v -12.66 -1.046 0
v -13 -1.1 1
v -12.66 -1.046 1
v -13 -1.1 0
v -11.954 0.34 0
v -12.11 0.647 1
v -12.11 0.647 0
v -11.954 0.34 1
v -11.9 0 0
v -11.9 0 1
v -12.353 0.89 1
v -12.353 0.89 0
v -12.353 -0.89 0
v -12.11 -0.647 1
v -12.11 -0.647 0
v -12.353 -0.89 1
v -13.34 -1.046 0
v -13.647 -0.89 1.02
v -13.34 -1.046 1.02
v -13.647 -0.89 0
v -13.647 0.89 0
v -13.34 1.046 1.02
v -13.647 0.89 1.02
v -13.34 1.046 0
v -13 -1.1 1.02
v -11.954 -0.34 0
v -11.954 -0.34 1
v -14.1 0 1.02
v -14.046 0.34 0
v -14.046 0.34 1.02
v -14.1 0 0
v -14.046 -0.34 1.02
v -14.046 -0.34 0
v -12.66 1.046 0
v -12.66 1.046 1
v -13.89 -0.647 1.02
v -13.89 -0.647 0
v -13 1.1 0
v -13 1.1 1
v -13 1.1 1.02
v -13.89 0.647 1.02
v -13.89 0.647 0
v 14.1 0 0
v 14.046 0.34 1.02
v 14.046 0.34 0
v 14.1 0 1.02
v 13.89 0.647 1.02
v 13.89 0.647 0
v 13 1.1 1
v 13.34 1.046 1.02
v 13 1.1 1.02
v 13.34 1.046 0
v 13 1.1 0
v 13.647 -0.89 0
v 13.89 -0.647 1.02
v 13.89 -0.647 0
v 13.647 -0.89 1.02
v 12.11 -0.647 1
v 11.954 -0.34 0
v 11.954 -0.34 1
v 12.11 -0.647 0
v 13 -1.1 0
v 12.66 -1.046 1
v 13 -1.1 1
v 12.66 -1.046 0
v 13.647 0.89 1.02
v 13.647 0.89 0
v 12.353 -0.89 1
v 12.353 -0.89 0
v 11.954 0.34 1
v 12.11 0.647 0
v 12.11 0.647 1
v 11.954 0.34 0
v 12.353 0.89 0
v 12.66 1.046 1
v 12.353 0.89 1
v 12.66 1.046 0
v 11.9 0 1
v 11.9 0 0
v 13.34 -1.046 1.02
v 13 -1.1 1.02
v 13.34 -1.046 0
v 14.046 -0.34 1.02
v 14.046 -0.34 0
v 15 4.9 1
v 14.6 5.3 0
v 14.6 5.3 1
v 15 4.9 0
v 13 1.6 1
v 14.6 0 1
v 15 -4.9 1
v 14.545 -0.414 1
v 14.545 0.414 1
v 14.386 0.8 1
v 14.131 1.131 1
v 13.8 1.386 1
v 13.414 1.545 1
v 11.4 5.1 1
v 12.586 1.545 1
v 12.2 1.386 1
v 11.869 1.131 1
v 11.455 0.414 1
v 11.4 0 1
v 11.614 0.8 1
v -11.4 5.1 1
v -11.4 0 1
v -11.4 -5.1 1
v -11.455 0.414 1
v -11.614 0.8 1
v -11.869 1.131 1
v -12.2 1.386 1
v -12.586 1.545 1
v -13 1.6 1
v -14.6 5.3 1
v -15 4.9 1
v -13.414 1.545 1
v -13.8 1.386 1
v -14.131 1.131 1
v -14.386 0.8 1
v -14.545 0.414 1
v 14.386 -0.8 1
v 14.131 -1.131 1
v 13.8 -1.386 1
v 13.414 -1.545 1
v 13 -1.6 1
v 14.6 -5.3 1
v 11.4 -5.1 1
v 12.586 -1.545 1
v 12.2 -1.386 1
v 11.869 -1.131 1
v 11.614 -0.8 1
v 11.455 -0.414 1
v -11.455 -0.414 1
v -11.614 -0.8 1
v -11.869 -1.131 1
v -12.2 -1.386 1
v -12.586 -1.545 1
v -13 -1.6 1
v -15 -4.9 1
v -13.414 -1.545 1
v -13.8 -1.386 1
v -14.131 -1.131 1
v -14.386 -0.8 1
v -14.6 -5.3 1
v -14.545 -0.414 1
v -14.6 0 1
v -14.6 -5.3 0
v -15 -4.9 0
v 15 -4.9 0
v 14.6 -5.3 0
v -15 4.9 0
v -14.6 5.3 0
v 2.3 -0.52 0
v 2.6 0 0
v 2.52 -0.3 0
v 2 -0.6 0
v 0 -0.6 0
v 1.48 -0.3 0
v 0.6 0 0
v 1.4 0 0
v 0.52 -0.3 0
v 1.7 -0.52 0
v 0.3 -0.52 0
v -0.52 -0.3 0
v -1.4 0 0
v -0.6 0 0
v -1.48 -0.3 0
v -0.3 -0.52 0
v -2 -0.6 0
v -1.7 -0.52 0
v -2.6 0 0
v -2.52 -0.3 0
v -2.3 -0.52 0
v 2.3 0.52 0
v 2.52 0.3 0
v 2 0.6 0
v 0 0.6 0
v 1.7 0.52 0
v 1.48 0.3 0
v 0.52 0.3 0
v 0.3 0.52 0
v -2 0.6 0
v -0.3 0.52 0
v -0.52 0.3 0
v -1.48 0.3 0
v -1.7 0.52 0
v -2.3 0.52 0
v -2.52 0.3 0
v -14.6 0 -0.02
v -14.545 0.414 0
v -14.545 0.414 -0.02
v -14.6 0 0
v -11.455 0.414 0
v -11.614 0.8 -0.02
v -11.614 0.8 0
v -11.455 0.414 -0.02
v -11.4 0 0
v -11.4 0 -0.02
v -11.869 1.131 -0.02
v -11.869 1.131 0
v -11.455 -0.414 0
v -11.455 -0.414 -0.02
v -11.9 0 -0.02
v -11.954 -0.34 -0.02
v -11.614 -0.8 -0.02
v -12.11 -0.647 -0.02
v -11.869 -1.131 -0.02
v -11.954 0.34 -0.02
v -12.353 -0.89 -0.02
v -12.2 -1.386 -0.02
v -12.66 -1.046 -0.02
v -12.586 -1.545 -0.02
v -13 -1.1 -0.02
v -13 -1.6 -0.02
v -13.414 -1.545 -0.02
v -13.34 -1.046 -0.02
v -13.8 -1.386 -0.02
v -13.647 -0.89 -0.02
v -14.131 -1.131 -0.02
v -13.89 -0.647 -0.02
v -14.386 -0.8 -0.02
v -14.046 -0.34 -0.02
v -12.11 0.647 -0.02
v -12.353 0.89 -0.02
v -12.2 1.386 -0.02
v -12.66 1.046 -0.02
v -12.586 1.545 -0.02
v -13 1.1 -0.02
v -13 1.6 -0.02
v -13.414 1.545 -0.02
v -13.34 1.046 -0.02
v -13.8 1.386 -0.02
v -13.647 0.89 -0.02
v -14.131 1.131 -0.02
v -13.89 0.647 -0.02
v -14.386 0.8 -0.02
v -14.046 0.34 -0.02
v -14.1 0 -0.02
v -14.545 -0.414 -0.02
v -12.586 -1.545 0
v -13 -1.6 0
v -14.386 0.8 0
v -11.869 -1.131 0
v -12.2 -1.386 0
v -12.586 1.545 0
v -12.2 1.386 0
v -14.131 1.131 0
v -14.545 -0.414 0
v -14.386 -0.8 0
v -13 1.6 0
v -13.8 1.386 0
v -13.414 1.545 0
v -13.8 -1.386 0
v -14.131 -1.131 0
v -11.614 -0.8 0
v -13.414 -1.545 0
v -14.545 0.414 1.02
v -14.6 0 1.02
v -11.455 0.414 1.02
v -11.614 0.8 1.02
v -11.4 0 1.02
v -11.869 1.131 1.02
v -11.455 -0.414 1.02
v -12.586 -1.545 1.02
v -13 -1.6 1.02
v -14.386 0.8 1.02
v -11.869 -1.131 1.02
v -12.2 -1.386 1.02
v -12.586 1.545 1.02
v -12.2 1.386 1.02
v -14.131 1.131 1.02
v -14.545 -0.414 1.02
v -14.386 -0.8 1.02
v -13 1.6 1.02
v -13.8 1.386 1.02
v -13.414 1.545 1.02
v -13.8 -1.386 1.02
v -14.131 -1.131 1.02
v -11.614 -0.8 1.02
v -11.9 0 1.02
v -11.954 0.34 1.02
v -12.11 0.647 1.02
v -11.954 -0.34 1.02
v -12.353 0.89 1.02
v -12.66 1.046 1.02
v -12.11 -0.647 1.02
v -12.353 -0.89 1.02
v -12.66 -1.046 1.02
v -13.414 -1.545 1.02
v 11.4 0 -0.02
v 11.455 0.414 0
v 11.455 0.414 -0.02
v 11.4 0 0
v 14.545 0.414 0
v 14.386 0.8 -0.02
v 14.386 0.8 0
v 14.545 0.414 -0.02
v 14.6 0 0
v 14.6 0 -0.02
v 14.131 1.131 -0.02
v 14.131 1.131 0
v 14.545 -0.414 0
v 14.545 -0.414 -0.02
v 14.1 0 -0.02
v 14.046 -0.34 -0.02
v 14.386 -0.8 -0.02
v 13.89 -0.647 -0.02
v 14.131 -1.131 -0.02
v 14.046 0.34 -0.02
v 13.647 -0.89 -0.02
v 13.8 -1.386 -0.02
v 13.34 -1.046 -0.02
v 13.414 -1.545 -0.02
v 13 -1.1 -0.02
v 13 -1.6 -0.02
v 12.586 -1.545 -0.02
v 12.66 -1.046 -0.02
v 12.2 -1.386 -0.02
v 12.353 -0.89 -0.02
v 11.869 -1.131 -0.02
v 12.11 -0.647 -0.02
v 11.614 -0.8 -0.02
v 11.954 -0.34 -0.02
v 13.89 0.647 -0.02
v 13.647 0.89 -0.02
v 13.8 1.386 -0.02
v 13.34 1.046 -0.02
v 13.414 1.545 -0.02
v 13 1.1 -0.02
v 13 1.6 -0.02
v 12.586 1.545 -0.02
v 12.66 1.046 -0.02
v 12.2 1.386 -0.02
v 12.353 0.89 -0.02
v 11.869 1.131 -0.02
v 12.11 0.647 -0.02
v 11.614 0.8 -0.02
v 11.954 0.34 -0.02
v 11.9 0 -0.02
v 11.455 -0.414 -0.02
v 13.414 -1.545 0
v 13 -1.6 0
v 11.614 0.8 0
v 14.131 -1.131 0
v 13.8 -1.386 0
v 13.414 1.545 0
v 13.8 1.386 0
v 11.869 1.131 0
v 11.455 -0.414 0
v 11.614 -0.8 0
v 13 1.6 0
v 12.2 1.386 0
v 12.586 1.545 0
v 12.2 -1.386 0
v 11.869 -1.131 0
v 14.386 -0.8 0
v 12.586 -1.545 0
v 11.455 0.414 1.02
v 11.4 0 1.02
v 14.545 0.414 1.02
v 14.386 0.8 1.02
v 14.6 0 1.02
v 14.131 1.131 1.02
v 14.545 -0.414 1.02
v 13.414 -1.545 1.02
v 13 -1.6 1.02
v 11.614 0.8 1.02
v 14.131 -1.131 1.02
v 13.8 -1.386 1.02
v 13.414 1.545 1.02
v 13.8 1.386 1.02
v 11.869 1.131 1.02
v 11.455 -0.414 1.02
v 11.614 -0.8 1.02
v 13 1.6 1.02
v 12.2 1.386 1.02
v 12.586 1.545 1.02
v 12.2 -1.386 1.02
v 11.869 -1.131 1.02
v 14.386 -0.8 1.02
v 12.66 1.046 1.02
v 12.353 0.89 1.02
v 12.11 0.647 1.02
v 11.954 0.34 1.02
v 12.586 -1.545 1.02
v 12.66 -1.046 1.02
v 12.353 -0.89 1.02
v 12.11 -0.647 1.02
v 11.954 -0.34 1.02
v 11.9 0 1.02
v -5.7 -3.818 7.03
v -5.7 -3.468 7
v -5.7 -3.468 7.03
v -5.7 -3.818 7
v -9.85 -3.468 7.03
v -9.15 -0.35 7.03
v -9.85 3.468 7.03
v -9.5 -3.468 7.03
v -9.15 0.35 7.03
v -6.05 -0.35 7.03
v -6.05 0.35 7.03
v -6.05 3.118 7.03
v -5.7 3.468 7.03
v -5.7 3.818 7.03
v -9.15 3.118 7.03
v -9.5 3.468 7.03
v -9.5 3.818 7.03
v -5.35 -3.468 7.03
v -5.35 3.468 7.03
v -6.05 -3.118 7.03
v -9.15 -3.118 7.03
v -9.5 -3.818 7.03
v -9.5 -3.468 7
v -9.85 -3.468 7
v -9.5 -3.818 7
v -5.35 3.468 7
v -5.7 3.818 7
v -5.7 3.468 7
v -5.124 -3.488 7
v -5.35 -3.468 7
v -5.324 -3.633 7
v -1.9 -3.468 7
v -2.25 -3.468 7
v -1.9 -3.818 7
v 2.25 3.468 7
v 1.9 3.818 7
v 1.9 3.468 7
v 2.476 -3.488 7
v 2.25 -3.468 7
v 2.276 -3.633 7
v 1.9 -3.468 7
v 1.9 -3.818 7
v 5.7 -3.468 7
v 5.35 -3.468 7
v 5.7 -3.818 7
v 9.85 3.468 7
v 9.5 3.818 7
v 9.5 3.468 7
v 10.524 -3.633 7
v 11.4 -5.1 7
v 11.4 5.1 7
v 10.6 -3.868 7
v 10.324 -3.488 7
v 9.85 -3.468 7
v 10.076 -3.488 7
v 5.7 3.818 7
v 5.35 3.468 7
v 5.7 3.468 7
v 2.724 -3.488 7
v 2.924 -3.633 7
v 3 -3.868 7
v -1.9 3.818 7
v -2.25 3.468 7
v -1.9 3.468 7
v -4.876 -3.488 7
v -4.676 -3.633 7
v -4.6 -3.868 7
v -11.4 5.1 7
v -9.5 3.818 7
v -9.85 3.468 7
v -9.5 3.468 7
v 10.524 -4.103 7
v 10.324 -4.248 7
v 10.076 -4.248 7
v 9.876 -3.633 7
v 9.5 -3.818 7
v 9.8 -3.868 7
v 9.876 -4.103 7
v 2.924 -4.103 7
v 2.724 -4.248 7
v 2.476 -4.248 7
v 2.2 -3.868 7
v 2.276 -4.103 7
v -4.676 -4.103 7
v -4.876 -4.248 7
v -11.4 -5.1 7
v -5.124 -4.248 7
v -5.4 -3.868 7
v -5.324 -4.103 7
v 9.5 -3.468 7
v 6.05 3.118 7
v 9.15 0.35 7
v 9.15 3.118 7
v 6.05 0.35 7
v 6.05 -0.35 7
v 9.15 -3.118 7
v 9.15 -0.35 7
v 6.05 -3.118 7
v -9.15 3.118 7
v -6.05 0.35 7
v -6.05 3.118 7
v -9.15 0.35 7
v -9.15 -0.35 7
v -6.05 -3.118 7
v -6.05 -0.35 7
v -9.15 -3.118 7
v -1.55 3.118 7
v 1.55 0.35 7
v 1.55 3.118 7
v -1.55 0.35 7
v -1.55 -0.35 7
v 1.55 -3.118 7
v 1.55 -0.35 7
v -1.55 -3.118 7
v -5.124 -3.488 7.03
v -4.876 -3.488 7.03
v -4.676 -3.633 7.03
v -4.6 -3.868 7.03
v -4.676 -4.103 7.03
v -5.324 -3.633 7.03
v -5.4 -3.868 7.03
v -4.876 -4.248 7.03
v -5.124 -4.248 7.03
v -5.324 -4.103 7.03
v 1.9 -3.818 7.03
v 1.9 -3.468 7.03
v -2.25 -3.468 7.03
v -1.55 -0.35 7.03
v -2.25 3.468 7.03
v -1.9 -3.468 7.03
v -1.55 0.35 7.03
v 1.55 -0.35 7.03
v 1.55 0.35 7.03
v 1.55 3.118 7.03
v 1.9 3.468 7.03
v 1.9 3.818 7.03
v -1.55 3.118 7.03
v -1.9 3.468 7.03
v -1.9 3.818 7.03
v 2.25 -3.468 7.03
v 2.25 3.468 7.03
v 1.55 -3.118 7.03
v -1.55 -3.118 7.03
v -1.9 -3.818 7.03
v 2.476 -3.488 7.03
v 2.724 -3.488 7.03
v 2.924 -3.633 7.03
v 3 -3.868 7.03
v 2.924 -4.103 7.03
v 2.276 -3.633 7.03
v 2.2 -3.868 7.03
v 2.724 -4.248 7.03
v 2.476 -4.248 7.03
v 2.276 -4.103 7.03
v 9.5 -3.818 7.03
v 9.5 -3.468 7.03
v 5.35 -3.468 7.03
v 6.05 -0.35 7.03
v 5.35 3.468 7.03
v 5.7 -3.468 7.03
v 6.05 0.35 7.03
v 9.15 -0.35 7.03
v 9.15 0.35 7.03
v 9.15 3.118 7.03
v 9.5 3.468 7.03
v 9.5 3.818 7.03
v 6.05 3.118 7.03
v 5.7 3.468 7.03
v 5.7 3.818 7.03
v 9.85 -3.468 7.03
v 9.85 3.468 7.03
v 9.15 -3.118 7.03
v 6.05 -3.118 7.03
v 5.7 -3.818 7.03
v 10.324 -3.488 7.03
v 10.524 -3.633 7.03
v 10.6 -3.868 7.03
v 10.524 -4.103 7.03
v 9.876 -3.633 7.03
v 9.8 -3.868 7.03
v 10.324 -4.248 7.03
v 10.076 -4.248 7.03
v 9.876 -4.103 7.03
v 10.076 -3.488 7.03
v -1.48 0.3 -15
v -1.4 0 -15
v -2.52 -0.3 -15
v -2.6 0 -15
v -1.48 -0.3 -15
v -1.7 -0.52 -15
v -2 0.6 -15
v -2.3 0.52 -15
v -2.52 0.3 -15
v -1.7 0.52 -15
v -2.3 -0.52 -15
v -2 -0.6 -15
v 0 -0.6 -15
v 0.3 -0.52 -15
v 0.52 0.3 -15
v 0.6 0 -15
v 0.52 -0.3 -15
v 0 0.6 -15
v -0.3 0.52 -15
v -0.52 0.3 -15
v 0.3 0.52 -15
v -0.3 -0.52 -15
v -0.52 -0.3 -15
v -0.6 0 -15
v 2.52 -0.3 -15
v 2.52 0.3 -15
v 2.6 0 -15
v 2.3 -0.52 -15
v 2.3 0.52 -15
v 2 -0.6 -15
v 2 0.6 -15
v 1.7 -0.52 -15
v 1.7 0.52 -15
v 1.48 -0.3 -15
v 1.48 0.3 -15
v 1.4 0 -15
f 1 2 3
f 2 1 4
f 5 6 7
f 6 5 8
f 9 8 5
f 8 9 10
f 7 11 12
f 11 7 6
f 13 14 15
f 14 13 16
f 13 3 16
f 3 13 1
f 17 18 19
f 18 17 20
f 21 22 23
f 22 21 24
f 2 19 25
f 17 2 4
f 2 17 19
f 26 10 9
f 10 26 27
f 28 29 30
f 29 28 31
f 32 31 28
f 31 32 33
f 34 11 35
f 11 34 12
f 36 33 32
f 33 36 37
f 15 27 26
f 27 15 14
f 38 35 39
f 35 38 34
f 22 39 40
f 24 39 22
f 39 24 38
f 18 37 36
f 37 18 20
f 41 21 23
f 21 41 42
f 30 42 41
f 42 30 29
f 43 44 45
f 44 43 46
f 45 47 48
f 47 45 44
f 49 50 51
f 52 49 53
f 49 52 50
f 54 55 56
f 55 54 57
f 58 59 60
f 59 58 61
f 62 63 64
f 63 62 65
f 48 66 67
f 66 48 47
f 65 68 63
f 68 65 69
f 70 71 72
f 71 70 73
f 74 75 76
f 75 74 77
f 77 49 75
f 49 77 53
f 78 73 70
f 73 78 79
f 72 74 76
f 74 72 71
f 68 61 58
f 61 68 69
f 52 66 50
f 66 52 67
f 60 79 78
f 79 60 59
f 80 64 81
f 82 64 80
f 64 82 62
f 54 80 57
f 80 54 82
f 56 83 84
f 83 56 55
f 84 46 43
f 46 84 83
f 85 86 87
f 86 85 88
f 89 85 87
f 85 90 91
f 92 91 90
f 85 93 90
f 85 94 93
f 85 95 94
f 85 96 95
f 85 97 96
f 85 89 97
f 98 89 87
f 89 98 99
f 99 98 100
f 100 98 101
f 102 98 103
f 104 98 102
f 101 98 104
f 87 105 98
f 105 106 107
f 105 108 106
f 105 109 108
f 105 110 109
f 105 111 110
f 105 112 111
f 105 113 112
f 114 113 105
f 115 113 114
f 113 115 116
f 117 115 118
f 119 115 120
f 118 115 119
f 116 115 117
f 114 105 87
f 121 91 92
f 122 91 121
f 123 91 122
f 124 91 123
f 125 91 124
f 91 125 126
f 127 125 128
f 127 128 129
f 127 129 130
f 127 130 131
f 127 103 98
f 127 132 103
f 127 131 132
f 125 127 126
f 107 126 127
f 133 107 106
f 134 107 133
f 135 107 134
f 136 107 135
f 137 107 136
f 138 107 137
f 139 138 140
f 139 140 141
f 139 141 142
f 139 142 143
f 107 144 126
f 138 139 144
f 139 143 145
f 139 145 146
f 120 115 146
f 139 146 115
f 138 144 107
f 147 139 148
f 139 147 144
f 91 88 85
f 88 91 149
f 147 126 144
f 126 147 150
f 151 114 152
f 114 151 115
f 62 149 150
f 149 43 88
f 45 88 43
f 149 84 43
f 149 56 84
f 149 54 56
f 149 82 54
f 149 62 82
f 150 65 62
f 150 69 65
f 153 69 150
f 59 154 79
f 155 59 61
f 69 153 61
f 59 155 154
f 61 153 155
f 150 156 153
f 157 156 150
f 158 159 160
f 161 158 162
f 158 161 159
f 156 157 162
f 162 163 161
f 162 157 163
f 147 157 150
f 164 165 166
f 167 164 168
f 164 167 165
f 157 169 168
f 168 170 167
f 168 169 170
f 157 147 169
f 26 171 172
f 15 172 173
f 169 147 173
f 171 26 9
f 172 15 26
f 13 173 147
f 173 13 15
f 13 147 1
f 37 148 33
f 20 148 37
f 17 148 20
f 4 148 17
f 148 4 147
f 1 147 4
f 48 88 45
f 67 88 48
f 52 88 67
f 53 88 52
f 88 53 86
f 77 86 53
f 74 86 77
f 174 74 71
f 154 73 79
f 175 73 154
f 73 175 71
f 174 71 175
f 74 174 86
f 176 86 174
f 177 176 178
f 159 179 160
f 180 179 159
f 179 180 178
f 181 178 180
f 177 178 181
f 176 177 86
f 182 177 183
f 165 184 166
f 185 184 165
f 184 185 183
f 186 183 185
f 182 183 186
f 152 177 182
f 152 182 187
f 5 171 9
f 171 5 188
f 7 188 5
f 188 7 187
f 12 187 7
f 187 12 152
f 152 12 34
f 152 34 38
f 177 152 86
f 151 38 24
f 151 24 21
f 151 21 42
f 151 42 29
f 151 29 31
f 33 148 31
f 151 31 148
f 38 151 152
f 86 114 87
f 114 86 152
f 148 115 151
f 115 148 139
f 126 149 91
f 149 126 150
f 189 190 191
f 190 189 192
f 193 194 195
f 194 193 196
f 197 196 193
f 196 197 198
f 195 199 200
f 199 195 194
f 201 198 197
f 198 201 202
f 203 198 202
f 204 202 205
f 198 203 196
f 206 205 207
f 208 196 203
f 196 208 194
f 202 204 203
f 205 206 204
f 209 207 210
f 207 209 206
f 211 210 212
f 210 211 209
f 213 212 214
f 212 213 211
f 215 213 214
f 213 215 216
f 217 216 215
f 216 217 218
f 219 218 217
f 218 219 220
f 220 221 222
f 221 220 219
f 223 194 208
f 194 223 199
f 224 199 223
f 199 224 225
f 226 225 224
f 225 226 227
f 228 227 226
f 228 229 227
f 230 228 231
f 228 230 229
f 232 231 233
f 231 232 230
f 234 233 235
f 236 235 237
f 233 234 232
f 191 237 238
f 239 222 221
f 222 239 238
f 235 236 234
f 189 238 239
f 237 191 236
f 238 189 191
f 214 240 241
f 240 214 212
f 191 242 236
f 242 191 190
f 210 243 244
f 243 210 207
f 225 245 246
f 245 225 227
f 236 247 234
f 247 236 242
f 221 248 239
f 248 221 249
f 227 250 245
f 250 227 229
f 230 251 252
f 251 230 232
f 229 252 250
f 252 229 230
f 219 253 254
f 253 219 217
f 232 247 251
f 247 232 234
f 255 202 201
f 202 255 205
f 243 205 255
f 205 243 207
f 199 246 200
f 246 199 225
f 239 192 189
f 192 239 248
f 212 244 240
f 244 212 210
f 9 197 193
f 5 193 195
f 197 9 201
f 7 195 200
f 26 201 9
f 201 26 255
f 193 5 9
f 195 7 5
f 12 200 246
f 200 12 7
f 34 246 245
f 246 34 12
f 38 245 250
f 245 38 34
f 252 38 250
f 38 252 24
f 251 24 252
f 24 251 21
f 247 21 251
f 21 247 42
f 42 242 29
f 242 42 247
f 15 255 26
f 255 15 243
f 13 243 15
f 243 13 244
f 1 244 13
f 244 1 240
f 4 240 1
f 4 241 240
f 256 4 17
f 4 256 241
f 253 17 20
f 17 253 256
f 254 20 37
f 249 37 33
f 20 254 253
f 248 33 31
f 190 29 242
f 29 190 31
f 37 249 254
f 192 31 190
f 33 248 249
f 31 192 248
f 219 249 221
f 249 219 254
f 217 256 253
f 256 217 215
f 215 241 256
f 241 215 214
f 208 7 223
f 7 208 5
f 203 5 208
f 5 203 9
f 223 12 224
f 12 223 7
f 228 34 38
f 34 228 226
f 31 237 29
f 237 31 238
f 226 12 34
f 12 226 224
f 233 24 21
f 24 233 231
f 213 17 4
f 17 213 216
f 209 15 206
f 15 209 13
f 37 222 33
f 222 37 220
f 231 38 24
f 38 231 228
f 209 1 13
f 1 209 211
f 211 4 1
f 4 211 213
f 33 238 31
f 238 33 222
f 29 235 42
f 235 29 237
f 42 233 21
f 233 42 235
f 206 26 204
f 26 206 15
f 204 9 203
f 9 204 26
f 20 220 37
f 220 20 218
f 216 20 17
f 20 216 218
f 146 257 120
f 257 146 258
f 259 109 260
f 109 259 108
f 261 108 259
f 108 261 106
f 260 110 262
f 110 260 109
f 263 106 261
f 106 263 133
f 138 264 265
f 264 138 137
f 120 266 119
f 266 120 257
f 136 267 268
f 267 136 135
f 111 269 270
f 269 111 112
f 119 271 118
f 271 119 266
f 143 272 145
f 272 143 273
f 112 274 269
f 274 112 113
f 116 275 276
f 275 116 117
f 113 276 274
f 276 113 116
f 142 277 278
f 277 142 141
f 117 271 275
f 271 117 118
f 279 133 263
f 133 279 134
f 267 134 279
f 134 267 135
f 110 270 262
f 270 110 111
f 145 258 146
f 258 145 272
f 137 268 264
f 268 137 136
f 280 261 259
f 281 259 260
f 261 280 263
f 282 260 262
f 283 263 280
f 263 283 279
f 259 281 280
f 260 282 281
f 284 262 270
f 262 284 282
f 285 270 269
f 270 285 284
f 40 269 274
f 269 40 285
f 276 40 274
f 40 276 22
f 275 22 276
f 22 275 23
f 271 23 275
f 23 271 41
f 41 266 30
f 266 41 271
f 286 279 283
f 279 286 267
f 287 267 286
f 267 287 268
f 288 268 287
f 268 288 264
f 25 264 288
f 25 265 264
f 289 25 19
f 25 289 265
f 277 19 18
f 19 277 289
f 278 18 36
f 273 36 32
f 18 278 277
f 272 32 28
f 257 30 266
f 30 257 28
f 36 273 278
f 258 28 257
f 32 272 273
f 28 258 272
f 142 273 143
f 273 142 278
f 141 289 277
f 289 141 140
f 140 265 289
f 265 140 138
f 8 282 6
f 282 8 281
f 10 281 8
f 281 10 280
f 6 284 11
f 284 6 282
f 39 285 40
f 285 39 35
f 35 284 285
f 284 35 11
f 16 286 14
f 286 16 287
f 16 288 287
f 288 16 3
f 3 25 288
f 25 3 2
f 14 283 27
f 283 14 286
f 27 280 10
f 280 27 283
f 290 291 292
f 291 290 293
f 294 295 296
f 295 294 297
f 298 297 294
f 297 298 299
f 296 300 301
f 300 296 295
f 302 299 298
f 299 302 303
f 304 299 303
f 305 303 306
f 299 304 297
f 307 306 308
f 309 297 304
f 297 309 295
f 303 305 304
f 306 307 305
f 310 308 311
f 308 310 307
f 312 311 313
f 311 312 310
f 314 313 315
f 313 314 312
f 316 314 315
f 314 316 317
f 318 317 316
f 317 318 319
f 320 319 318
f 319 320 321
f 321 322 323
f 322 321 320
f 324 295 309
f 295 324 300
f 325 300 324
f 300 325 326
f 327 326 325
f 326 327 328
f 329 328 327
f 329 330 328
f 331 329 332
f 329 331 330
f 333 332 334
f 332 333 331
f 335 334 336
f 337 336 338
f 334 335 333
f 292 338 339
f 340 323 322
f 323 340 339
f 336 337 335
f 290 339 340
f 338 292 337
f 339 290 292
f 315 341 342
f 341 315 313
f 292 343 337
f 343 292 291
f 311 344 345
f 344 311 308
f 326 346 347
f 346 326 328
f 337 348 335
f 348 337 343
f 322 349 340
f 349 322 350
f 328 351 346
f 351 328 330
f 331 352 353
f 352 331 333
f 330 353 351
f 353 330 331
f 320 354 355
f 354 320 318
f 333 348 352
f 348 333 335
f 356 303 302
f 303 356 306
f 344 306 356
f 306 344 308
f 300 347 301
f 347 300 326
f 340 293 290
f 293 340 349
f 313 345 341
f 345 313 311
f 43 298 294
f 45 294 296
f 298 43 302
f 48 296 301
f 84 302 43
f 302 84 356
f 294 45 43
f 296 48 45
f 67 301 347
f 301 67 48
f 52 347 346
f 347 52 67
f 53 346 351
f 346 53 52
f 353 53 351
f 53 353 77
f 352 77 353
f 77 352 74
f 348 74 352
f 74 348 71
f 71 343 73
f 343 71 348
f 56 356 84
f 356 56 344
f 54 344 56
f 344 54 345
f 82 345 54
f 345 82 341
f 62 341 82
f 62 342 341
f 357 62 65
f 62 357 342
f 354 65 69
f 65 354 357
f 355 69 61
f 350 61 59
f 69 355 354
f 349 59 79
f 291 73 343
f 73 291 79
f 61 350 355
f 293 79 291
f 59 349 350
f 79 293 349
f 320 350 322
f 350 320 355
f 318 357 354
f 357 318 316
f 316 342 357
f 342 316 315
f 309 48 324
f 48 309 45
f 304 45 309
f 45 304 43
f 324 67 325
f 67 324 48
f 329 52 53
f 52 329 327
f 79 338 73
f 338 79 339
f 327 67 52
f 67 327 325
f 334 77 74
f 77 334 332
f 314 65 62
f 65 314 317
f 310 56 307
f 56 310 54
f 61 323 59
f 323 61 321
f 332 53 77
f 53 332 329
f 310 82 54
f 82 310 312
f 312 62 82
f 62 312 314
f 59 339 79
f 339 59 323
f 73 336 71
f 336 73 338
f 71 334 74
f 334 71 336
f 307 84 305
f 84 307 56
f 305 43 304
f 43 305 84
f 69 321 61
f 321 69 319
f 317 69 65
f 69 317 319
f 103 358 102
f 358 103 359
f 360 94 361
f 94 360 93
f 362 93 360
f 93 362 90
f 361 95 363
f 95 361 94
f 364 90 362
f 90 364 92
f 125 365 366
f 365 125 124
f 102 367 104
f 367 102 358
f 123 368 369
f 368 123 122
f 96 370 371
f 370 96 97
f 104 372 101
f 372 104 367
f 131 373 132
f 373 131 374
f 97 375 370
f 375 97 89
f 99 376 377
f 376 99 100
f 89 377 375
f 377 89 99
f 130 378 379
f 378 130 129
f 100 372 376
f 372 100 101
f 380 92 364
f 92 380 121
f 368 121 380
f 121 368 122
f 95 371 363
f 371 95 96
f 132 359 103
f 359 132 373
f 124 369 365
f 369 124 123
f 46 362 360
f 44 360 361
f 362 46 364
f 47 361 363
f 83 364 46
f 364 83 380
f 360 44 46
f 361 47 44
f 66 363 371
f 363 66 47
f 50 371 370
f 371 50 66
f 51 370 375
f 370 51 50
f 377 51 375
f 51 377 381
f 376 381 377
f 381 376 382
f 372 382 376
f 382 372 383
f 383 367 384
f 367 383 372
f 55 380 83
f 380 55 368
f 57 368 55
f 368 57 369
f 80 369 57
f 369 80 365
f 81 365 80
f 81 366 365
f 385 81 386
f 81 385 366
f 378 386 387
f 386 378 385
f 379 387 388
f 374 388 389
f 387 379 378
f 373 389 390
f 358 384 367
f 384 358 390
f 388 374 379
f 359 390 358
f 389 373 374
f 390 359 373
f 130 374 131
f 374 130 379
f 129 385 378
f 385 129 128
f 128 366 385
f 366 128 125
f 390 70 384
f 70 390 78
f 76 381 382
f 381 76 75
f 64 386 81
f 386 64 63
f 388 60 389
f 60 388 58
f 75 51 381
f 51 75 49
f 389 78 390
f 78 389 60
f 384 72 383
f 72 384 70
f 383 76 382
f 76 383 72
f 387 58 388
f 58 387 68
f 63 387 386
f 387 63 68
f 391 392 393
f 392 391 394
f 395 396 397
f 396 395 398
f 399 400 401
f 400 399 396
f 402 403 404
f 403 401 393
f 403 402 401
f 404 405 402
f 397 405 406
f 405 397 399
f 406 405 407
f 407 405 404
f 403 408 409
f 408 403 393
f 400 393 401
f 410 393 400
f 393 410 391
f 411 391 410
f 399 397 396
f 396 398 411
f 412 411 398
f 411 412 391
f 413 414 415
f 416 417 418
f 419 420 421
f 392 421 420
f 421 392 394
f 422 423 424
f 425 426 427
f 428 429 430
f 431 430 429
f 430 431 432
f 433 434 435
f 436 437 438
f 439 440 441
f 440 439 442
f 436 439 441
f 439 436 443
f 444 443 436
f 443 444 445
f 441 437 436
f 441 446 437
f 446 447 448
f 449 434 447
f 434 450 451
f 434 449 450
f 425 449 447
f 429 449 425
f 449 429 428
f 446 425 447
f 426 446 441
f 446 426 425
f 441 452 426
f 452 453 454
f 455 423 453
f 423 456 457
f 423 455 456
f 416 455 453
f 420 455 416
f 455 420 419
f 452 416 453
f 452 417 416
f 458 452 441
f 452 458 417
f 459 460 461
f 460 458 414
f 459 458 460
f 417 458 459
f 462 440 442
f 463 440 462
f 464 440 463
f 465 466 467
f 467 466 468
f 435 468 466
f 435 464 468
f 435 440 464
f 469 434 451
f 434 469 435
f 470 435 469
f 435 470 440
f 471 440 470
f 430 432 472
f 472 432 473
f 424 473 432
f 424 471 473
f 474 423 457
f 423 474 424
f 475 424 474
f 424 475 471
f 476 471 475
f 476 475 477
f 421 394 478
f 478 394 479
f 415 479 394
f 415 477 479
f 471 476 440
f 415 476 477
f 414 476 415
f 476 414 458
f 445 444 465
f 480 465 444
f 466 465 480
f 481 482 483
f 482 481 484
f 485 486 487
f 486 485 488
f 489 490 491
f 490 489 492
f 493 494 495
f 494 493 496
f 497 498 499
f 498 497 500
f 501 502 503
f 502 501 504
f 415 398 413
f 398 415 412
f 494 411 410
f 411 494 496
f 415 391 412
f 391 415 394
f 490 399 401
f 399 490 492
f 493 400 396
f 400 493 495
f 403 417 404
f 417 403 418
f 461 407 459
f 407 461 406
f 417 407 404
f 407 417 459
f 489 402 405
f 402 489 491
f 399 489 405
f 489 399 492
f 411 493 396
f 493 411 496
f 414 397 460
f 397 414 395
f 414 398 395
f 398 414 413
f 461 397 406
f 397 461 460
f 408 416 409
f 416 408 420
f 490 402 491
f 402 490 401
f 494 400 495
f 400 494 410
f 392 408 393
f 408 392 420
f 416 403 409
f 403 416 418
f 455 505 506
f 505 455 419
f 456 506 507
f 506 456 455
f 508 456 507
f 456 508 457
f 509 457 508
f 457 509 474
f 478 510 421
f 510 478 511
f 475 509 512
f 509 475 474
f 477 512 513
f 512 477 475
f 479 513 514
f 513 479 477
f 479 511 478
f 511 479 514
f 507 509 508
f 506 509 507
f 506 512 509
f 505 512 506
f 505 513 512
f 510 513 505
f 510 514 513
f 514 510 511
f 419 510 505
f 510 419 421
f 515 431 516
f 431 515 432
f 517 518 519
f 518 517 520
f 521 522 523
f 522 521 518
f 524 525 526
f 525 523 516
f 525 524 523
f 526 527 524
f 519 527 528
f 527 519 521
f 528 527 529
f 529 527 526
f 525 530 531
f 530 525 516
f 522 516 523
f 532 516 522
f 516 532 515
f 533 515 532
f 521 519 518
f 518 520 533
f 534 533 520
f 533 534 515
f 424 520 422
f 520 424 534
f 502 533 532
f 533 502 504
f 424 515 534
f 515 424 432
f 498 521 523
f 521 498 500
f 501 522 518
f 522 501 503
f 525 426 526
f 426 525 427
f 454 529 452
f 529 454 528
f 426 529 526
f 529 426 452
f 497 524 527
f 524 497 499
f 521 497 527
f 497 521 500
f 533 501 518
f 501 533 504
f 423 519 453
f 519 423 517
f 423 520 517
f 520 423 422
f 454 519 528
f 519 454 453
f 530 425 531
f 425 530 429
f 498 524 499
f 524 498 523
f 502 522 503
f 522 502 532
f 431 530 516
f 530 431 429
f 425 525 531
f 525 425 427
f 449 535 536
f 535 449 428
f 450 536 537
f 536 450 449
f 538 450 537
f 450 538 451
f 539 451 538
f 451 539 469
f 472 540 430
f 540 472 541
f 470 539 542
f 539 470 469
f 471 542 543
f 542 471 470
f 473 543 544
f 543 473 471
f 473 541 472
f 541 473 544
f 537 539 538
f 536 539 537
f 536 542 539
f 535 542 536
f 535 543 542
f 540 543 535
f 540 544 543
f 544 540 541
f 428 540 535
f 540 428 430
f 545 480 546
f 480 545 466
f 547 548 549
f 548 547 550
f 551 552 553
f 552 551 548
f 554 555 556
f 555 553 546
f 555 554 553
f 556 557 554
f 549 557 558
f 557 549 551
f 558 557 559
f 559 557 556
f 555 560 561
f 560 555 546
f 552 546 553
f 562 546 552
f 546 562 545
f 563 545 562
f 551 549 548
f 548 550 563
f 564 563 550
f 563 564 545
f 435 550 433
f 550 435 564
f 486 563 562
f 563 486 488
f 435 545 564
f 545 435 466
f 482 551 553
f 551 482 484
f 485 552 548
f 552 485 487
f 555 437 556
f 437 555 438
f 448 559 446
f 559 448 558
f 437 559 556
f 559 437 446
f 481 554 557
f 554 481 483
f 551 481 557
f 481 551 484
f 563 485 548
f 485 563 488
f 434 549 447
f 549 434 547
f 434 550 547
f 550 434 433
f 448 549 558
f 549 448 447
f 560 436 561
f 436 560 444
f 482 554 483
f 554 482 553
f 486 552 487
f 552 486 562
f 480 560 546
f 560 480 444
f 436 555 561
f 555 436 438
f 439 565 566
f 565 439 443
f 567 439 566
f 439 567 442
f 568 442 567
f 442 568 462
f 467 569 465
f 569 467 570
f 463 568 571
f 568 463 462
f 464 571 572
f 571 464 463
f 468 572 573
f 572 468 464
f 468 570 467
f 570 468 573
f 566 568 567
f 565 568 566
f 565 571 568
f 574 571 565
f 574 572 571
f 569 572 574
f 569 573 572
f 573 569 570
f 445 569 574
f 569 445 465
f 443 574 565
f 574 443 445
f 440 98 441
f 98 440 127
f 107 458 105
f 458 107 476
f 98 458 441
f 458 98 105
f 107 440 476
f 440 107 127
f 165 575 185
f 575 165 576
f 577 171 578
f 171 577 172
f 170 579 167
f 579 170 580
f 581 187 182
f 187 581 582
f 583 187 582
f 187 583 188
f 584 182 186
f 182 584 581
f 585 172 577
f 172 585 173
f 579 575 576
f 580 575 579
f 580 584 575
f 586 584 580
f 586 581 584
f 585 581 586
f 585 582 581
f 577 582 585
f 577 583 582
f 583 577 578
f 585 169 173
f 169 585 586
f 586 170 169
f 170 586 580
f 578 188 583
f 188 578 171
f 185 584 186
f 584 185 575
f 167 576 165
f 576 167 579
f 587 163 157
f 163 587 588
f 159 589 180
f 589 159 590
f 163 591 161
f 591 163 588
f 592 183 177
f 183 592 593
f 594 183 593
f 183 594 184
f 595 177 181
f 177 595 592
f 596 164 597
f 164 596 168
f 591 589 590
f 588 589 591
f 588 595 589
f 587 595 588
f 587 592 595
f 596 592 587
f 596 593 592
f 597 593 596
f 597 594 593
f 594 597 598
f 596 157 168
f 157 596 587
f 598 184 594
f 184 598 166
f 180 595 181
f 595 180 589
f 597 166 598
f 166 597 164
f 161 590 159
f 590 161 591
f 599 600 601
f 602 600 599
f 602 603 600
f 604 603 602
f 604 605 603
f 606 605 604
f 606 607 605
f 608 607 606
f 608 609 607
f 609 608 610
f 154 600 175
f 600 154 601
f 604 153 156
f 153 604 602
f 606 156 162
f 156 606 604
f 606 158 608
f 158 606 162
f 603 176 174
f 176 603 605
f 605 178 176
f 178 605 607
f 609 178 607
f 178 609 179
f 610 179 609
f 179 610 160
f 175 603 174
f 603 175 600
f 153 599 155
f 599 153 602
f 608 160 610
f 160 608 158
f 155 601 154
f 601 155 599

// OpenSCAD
// file: ../lib/display.scad
// partbin - shared pieces for display modules: glass panels, LED matrix
// blocks, 7-segment displays, the LCD1602 frame, a window cutout for the
// case and a holder that grips a board by its edges.
//
//   use <../lib/display.scad>
//
// Same convention as every module: parts up (the display faces +z), the
// board centred on x/y, its underside at z = 0.

use <parts.scad>

function c_glass() = [0.04, 0.04, 0.06];
function c_screen() = [0.08, 0.10, 0.16];

// ------------------------------------------------------------ glass panel
// A TFT/OLED glass panel lying on the board: outline [x, y], thickness t,
// with the active (lit) area [x, y] centred at `off` from the panel centre.
module glass_panel(outline, t = 2.4, active, off = [0, 0]) {
    color(c_glass()) translate([-outline[0] / 2, -outline[1] / 2, 0]) cube([outline[0], outline[1], t]);
    color(c_screen()) translate([off[0] - active[0] / 2, off[1] - active[1] / 2, t]) cube([active[0], active[1], 0.02]);
}

// ------------------------------------------------------------- LED matrix
// An 8 x 8 LED matrix block (1088AS-style): `size` square, h tall, with
// the 64 round LEDs on top.
module led_matrix(size = 32, h = 7, led = [0.55, 0.06, 0.06], body = [0.12, 0.12, 0.12]) {
    p = size / 8;
    color(body) translate([-size / 2, -size / 2, 0]) cube([size, size, h]);
    color(led) for (i = [0:7], j = [0:7])
        translate([-size / 2 + p / 2 + i * p, -size / 2 + p / 2 + j * p, h]) cylinder(d = p * 0.75, h = 0.05, $fn = 16);
}

// ------------------------------------------------------- 7-segment digits
// A block of `digits` 7-segment digits, `size` [x, y], h tall.
module seg7_display(digits = 4, size = [30, 14], h = 7.2, colon = true) {
    color([0.92, 0.92, 0.92]) translate([-size[0] / 2, -size[1] / 2, 0]) cube([size[0], size[1], h - 0.05]);
    color([0.12, 0.12, 0.12]) translate([-size[0] / 2, -size[1] / 2, h - 0.05]) cube([size[0], size[1], 0.05]);
    dw = size[0] / digits;
    sh = size[1] * 0.68;  sw = dw * 0.5;  st = 0.7;
    color([0.35, 0.05, 0.05]) for (d = [0:digits - 1]) translate([-size[0] / 2 + dw * (d + 0.5), 0, h]) {
        for (y = [-1, 0, 1]) translate([-sw / 2, y * sh / 2 - st / 2, 0]) cube([sw, st, 0.03]);       // a g d
        for (x = [-1, 1], y = [-1, 1]) translate([x * sw / 2 - st / 2, y < 0 ? -sh / 2 : 0, 0]) cube([st, sh / 2, 0.03]);
        translate([sw / 2 + 0.7, -sh / 2 - 0.4, 0]) cylinder(d = 0.8, h = 0.03, $fn = 10);         // dot
    }
    if (colon) color([0.35, 0.05, 0.05]) for (y = [-1.6, 1.6]) translate([0, y, h]) cylinder(d = 0.8, h = 0.03, $fn = 10);
}

// ----------------------------------------------------------------- windows
// A rectangular window in the lid above a display. The lid's inside face is
// at z0 and it is `depth` thick; `size` [x, y] is the opening at the inside,
// and it widens outwards by `flare` mm on each side (0 = straight walls).
module rect_window(x, y, z0, depth, size, flare = 0, r = 0.5) {
    translate([x, y, z0 - 0.5]) hull() {
        linear_extrude(0.01) offset(r) offset(-r) square(size, center = true);
        translate([0, 0, depth + 1.0]) linear_extrude(0.01)
            offset(r + flare * (depth + 1) / depth) offset(-r) square(size, center = true);
    }
}

// ----------------------------------------------------------------- holder
// For boards without mounting holes: a ledge under the board's edges (`h`
// tall, so parts underneath have room), low walls around it with gaps to
// get a fingernail in, and `top` mm of wall above the board's top.
// The display is meant to be pressed against the lid from behind, so the
// walls only locate it. Add it to the case floor.
module edge_holder(size, t, h = 6, ledge = 1.5, wall = 1.2, clear = 0.3, top = 0.8) {
    x0 = size[0] / 2 + clear;  y0 = size[1] / 2 + clear;
    difference() {
        translate([-x0 - wall, -y0 - wall, -h]) cube([2 * (x0 + wall), 2 * (y0 + wall), h + t + top]);
        // room for the board
        translate([-x0, -y0, 0]) cube([2 * x0, 2 * y0, t + top + 1]);
        // room under it, inside the ledge
        translate([-x0 + ledge, -y0 + ledge, -h - 1]) cube([2 * (x0 - ledge), 2 * (y0 - ledge), h + 2]);
        // fingernail gaps in the middle of each side, down to the board's underside
        for (a = [0, 90]) rotate([0, 0, a]) {
            g = min(8, (a == 0 ? size[0] : size[1]) / 4);
            translate([-g / 2, -50, 0]) cube([g, 100, t + top + 1]);
        }
    }
}

// --------------------------------------------------------------- SD socket
// A push-push microSD socket (metal), its opening towards -y.
module microsd_socket() {
    color(c_tin()) translate([-7, -7.5, 0]) cube([14, 15, 1.8]);
    color(c_plastic()) translate([-5.5, -7.6, 0.3]) cube([11, 0.2, 1.2]);
}
// file: ../lib/breakout.scad
// partbin - shared pieces for small breakout boards: a PCB with mounting
// holes and a row of pins, pin headers, mounts, and cutouts for sensors.
//
//   use <../lib/breakout.scad>
//
// Same convention as every module: parts up, the board centred on x/y, its
// underside at z = 0. The pin row runs along x.

use <parts.scad>

// ------------------------------------------------------------------- board
// size [x, y], t thickness, r corner radius.
// holes: [[x, y], ...] mounting holes, hole_d drill, ring_d copper ring (0 = none).
// pins: n pins, 2.54 mm apart, centred on x = pins_x, at y = pins_y.
module bo_pcb(size, t = 1.6, r = 0.5, holes = [], hole_d = 3.0, ring_d = 0,
              n = 4, pins_x = 0, pins_y = 0, color = [0.06, 0.30, 0.66]) {
    pcb(size, t, concat(
            [for (h = holes) [h[0], h[1], hole_d, ring_d]],
            [for (i = [0:n - 1]) [pins_x + (i - (n - 1) / 2) * 2.54, pins_y, 1.0, 1.7]]),
        color, r);
}

// Pin header soldered into the pin row: "down" (pins below the board, the
// usual way), "up", or "none".
module bo_headers(n, pins_x, pins_y, t, mode = "down") {
    if (mode == "down")
        translate([pins_x, pins_y, 0]) rotate([0, 0, 90]) mirror([0, 0, 1]) pin_header(n, below = t + 1.5);
    else if (mode == "up")
        translate([pins_x, pins_y, t]) rotate([0, 0, 90]) pin_header(n, below = t + 1.5);
}

// Text on the underside, readable from below.
module bo_under(x, y) translate([x, y, 0]) rotate([0, 180, 0]) children();

// -------------------------------------------------------------------- mounts
// Posts under the mounting holes, from z = -h up to the board's underside.
// style "peg": a pin goes up through the hole and the board presses on
//   (snug = how much smaller than the hole; 0.15 holds by friction).
// style "screw": a pilot hole for a self-tapping screw (screw_d).
// Add them to the case floor.
module bo_mounts(holes, hole_d, t, h = 3, style = "peg", wall = 1.4, snug = 0.15, screw_d = 0) {
    sd = screw_d > 0 ? screw_d : hole_d * 0.8;
    for (p = holes) translate([p[0], p[1], 0]) {
        difference() {
            translate([0, 0, -h]) cylinder(d = hole_d + 2 * wall, h = h, $fn = 40);
            if (style == "screw") translate([0, 0, -h + 0.8]) cylinder(d = sd, h = h, $fn = 24);
        }
        if (style == "peg") {
            pd = hole_d - snug;
            cylinder(d = pd, h = t + 0.3, $fn = 32);
            translate([0, 0, t + 0.3]) cylinder(d1 = pd, d2 = pd - 0.8, h = 0.4, $fn = 32);  // lead-in
        }
    }
}

// ------------------------------------------------------------------ cutouts
// For a sensor that looks up. The wall (or lid) above the board has its
// inside face at z0 and is `depth` thick.
//
// A round window over a light sensor, widening outwards by `flare` degrees
// so it sees a wide angle of the room.
module bo_window(x, y, z0, depth, d = 3, flare = 35) {
    translate([x, y, z0 - 0.5])
        cylinder(d1 = d, d2 = d + 2 * (depth + 1) * tan(flare), h = depth + 1.5, $fn = 40);
}

// Slots over a sensor that needs air (BME280): `area` [x, y] covered by
// slots along x, `slot` wide with `bar` between them.
module bo_vents(x, y, z0, depth, area = [8, 6], slot = 1.2, bar = 1.2) {
    n = max(1, floor((area[1] + bar) / (slot + bar)));
    span = n * slot + (n - 1) * bar;
    for (i = [0:n - 1])
        translate([x - area[0] / 2, y - span / 2 + i * (slot + bar), z0 - 0.5])
            hull() for (dx = [slot / 2, area[0] - slot / 2])
                translate([dx, slot / 2, 0]) cylinder(d = slot, h = depth + 1.5, $fn = 20);
}

// ---------------------------------------------------------------- demo scene
// The board on its mounts, standing on a piece of floor, with a piece of
// see-through lid above it holding the cutout. Used when a module file is
// opened on its own.
module bo_demo(size, mount_h, lid_z, lid_t = 2) {
    color("#d6a24a") translate([-size[0] / 2 - 3, -size[1] / 2 - 3, -mount_h - 1.6]) cube([size[0] + 6, size[1] + 6, 1.6]);
    children(0);                                        // board
    color("#d6a24a") children(1);                       // mounts
    color("#9aa3ab", 0.55) difference() {               // lid with the cutout
        translate([-size[0] / 2 - 3, -size[1] / 2 - 3, lid_z]) cube([size[0] + 6, size[1] + 6, lid_t]);
        children(2);
    }
}

// ------------------------------------------------------------- USB cutouts
// A hole for a USB socket in the wall it faces. The socket's front face is
// at `at` = [x, y], its centre `zc` above the board's underside, and it points
// in direction `rot` (0 = +y, 90 = -x, 180 = -y, 270 = +x). The wall's inside
// face is `gap` in front of the socket and it is `wall` thick. `size` is the
// socket's [width, height]; from the outside a wider recess (`plug`) leaves
// `lip` mm of wall so the cable's plug goes all the way in.
module bo_usb_cutout(at, zc, rot = 0, size = [8.94, 3.26], wall = 2, gap = 0, clear = 0.3,
                     plug = [12.4, 6.6], lip = 0.8) {
    module stadium(ww, hh) hull() for (m = [-1, 1]) translate([m * (ww - hh) / 2, 0]) circle(d = hh, $fn = 32);
    translate([at[0], at[1], zc]) rotate([0, 0, rot]) {
        translate([0, -0.5, 0]) rotate([-90, 0, 0]) linear_extrude(gap + wall + 1.5) stadium(size[0] + 2 * clear, size[1] + 2 * clear);
        if (lip < wall) translate([0, gap + lip, 0]) rotate([-90, 0, 0]) linear_extrude(wall - lip + 1) stadium(plug[0], plug[1]);
    }
}
// main file
// 0.28" 3-digit LED voltmeter, DC 0-100 V, 3 wires (red: power, yellow:
// measure, black: GND). A small green board with the display and a mounting
// ear with a hole at each end. Sold in red, green, blue and other colours.
//
//   use <partbin/modules/voltmeter_028.scad>
//
//   voltmeter_028();                     the meter (red digits)
//   voltmeter_028(seg = "green");
//   voltmeter_028_panel_cutout(wall)     the window for a front panel it sits behind
//   voltmeter_028_holder(h = 3);         two posts for its ears
//   voltmeter_028_size()                 [length with the ears, width, thickness]
//
// Where it sits: digits up, the meter centred on x = y = 0, the PCB's
// underside at z = 0, the long side along x. Typical sizes.

use <../lib/parts.scad>
use <../lib/breakout.scad>
use <../lib/display.scad>

// ------------------------------------------------------------------- typical
b_l      = 30.0;    // with the ears
b_w      = 10.6;
b_t      = 1.0;
body     = [22.8, 10.2];
body_h   = 6.0;
ear_hole = [13.0, 0];
hole_d   = 2.2;

function voltmeter_028_size() = [b_l, b_w, b_t + body_h];

module voltmeter_028(seg = "red") {
    pcb([b_l, b_w], b_t, [for (s = [-1, 1]) [s * ear_hole[0], 0, hole_d, 3.2]], [0.20, 0.60, 0.30], 0.4);
    translate([0, 0, b_t]) seg7_display(3, body, body_h, false, seg7_color(seg));
    // the three wires leaving the back
    for (i = [0:2]) color(["red", "yellow", "black"][i]) translate([-2 + i * 2, 0, 0]) mirror([0, 0, 1]) cylinder(d = 1.2, h = 15, $fn = 12);
}

// The window for the digits in a front panel `wall` thick that touches the
// meter's face (or set `gap`).
module voltmeter_028_panel_cutout(wall = 2, gap = 0, margin = 0.3) {
    rect_window(0, 0, b_t + body_h + gap, wall, [body[0] + 2 * margin, body[1] + 2 * margin], 0, 0.3);
}

module voltmeter_028_holder(h = 3, style = "screw") { bo_mounts([for (s = [-1, 1]) [s * ear_hole[0], 0]], hole_d, b_t, h, style); }

show = "demo";
voltmeter_028();
